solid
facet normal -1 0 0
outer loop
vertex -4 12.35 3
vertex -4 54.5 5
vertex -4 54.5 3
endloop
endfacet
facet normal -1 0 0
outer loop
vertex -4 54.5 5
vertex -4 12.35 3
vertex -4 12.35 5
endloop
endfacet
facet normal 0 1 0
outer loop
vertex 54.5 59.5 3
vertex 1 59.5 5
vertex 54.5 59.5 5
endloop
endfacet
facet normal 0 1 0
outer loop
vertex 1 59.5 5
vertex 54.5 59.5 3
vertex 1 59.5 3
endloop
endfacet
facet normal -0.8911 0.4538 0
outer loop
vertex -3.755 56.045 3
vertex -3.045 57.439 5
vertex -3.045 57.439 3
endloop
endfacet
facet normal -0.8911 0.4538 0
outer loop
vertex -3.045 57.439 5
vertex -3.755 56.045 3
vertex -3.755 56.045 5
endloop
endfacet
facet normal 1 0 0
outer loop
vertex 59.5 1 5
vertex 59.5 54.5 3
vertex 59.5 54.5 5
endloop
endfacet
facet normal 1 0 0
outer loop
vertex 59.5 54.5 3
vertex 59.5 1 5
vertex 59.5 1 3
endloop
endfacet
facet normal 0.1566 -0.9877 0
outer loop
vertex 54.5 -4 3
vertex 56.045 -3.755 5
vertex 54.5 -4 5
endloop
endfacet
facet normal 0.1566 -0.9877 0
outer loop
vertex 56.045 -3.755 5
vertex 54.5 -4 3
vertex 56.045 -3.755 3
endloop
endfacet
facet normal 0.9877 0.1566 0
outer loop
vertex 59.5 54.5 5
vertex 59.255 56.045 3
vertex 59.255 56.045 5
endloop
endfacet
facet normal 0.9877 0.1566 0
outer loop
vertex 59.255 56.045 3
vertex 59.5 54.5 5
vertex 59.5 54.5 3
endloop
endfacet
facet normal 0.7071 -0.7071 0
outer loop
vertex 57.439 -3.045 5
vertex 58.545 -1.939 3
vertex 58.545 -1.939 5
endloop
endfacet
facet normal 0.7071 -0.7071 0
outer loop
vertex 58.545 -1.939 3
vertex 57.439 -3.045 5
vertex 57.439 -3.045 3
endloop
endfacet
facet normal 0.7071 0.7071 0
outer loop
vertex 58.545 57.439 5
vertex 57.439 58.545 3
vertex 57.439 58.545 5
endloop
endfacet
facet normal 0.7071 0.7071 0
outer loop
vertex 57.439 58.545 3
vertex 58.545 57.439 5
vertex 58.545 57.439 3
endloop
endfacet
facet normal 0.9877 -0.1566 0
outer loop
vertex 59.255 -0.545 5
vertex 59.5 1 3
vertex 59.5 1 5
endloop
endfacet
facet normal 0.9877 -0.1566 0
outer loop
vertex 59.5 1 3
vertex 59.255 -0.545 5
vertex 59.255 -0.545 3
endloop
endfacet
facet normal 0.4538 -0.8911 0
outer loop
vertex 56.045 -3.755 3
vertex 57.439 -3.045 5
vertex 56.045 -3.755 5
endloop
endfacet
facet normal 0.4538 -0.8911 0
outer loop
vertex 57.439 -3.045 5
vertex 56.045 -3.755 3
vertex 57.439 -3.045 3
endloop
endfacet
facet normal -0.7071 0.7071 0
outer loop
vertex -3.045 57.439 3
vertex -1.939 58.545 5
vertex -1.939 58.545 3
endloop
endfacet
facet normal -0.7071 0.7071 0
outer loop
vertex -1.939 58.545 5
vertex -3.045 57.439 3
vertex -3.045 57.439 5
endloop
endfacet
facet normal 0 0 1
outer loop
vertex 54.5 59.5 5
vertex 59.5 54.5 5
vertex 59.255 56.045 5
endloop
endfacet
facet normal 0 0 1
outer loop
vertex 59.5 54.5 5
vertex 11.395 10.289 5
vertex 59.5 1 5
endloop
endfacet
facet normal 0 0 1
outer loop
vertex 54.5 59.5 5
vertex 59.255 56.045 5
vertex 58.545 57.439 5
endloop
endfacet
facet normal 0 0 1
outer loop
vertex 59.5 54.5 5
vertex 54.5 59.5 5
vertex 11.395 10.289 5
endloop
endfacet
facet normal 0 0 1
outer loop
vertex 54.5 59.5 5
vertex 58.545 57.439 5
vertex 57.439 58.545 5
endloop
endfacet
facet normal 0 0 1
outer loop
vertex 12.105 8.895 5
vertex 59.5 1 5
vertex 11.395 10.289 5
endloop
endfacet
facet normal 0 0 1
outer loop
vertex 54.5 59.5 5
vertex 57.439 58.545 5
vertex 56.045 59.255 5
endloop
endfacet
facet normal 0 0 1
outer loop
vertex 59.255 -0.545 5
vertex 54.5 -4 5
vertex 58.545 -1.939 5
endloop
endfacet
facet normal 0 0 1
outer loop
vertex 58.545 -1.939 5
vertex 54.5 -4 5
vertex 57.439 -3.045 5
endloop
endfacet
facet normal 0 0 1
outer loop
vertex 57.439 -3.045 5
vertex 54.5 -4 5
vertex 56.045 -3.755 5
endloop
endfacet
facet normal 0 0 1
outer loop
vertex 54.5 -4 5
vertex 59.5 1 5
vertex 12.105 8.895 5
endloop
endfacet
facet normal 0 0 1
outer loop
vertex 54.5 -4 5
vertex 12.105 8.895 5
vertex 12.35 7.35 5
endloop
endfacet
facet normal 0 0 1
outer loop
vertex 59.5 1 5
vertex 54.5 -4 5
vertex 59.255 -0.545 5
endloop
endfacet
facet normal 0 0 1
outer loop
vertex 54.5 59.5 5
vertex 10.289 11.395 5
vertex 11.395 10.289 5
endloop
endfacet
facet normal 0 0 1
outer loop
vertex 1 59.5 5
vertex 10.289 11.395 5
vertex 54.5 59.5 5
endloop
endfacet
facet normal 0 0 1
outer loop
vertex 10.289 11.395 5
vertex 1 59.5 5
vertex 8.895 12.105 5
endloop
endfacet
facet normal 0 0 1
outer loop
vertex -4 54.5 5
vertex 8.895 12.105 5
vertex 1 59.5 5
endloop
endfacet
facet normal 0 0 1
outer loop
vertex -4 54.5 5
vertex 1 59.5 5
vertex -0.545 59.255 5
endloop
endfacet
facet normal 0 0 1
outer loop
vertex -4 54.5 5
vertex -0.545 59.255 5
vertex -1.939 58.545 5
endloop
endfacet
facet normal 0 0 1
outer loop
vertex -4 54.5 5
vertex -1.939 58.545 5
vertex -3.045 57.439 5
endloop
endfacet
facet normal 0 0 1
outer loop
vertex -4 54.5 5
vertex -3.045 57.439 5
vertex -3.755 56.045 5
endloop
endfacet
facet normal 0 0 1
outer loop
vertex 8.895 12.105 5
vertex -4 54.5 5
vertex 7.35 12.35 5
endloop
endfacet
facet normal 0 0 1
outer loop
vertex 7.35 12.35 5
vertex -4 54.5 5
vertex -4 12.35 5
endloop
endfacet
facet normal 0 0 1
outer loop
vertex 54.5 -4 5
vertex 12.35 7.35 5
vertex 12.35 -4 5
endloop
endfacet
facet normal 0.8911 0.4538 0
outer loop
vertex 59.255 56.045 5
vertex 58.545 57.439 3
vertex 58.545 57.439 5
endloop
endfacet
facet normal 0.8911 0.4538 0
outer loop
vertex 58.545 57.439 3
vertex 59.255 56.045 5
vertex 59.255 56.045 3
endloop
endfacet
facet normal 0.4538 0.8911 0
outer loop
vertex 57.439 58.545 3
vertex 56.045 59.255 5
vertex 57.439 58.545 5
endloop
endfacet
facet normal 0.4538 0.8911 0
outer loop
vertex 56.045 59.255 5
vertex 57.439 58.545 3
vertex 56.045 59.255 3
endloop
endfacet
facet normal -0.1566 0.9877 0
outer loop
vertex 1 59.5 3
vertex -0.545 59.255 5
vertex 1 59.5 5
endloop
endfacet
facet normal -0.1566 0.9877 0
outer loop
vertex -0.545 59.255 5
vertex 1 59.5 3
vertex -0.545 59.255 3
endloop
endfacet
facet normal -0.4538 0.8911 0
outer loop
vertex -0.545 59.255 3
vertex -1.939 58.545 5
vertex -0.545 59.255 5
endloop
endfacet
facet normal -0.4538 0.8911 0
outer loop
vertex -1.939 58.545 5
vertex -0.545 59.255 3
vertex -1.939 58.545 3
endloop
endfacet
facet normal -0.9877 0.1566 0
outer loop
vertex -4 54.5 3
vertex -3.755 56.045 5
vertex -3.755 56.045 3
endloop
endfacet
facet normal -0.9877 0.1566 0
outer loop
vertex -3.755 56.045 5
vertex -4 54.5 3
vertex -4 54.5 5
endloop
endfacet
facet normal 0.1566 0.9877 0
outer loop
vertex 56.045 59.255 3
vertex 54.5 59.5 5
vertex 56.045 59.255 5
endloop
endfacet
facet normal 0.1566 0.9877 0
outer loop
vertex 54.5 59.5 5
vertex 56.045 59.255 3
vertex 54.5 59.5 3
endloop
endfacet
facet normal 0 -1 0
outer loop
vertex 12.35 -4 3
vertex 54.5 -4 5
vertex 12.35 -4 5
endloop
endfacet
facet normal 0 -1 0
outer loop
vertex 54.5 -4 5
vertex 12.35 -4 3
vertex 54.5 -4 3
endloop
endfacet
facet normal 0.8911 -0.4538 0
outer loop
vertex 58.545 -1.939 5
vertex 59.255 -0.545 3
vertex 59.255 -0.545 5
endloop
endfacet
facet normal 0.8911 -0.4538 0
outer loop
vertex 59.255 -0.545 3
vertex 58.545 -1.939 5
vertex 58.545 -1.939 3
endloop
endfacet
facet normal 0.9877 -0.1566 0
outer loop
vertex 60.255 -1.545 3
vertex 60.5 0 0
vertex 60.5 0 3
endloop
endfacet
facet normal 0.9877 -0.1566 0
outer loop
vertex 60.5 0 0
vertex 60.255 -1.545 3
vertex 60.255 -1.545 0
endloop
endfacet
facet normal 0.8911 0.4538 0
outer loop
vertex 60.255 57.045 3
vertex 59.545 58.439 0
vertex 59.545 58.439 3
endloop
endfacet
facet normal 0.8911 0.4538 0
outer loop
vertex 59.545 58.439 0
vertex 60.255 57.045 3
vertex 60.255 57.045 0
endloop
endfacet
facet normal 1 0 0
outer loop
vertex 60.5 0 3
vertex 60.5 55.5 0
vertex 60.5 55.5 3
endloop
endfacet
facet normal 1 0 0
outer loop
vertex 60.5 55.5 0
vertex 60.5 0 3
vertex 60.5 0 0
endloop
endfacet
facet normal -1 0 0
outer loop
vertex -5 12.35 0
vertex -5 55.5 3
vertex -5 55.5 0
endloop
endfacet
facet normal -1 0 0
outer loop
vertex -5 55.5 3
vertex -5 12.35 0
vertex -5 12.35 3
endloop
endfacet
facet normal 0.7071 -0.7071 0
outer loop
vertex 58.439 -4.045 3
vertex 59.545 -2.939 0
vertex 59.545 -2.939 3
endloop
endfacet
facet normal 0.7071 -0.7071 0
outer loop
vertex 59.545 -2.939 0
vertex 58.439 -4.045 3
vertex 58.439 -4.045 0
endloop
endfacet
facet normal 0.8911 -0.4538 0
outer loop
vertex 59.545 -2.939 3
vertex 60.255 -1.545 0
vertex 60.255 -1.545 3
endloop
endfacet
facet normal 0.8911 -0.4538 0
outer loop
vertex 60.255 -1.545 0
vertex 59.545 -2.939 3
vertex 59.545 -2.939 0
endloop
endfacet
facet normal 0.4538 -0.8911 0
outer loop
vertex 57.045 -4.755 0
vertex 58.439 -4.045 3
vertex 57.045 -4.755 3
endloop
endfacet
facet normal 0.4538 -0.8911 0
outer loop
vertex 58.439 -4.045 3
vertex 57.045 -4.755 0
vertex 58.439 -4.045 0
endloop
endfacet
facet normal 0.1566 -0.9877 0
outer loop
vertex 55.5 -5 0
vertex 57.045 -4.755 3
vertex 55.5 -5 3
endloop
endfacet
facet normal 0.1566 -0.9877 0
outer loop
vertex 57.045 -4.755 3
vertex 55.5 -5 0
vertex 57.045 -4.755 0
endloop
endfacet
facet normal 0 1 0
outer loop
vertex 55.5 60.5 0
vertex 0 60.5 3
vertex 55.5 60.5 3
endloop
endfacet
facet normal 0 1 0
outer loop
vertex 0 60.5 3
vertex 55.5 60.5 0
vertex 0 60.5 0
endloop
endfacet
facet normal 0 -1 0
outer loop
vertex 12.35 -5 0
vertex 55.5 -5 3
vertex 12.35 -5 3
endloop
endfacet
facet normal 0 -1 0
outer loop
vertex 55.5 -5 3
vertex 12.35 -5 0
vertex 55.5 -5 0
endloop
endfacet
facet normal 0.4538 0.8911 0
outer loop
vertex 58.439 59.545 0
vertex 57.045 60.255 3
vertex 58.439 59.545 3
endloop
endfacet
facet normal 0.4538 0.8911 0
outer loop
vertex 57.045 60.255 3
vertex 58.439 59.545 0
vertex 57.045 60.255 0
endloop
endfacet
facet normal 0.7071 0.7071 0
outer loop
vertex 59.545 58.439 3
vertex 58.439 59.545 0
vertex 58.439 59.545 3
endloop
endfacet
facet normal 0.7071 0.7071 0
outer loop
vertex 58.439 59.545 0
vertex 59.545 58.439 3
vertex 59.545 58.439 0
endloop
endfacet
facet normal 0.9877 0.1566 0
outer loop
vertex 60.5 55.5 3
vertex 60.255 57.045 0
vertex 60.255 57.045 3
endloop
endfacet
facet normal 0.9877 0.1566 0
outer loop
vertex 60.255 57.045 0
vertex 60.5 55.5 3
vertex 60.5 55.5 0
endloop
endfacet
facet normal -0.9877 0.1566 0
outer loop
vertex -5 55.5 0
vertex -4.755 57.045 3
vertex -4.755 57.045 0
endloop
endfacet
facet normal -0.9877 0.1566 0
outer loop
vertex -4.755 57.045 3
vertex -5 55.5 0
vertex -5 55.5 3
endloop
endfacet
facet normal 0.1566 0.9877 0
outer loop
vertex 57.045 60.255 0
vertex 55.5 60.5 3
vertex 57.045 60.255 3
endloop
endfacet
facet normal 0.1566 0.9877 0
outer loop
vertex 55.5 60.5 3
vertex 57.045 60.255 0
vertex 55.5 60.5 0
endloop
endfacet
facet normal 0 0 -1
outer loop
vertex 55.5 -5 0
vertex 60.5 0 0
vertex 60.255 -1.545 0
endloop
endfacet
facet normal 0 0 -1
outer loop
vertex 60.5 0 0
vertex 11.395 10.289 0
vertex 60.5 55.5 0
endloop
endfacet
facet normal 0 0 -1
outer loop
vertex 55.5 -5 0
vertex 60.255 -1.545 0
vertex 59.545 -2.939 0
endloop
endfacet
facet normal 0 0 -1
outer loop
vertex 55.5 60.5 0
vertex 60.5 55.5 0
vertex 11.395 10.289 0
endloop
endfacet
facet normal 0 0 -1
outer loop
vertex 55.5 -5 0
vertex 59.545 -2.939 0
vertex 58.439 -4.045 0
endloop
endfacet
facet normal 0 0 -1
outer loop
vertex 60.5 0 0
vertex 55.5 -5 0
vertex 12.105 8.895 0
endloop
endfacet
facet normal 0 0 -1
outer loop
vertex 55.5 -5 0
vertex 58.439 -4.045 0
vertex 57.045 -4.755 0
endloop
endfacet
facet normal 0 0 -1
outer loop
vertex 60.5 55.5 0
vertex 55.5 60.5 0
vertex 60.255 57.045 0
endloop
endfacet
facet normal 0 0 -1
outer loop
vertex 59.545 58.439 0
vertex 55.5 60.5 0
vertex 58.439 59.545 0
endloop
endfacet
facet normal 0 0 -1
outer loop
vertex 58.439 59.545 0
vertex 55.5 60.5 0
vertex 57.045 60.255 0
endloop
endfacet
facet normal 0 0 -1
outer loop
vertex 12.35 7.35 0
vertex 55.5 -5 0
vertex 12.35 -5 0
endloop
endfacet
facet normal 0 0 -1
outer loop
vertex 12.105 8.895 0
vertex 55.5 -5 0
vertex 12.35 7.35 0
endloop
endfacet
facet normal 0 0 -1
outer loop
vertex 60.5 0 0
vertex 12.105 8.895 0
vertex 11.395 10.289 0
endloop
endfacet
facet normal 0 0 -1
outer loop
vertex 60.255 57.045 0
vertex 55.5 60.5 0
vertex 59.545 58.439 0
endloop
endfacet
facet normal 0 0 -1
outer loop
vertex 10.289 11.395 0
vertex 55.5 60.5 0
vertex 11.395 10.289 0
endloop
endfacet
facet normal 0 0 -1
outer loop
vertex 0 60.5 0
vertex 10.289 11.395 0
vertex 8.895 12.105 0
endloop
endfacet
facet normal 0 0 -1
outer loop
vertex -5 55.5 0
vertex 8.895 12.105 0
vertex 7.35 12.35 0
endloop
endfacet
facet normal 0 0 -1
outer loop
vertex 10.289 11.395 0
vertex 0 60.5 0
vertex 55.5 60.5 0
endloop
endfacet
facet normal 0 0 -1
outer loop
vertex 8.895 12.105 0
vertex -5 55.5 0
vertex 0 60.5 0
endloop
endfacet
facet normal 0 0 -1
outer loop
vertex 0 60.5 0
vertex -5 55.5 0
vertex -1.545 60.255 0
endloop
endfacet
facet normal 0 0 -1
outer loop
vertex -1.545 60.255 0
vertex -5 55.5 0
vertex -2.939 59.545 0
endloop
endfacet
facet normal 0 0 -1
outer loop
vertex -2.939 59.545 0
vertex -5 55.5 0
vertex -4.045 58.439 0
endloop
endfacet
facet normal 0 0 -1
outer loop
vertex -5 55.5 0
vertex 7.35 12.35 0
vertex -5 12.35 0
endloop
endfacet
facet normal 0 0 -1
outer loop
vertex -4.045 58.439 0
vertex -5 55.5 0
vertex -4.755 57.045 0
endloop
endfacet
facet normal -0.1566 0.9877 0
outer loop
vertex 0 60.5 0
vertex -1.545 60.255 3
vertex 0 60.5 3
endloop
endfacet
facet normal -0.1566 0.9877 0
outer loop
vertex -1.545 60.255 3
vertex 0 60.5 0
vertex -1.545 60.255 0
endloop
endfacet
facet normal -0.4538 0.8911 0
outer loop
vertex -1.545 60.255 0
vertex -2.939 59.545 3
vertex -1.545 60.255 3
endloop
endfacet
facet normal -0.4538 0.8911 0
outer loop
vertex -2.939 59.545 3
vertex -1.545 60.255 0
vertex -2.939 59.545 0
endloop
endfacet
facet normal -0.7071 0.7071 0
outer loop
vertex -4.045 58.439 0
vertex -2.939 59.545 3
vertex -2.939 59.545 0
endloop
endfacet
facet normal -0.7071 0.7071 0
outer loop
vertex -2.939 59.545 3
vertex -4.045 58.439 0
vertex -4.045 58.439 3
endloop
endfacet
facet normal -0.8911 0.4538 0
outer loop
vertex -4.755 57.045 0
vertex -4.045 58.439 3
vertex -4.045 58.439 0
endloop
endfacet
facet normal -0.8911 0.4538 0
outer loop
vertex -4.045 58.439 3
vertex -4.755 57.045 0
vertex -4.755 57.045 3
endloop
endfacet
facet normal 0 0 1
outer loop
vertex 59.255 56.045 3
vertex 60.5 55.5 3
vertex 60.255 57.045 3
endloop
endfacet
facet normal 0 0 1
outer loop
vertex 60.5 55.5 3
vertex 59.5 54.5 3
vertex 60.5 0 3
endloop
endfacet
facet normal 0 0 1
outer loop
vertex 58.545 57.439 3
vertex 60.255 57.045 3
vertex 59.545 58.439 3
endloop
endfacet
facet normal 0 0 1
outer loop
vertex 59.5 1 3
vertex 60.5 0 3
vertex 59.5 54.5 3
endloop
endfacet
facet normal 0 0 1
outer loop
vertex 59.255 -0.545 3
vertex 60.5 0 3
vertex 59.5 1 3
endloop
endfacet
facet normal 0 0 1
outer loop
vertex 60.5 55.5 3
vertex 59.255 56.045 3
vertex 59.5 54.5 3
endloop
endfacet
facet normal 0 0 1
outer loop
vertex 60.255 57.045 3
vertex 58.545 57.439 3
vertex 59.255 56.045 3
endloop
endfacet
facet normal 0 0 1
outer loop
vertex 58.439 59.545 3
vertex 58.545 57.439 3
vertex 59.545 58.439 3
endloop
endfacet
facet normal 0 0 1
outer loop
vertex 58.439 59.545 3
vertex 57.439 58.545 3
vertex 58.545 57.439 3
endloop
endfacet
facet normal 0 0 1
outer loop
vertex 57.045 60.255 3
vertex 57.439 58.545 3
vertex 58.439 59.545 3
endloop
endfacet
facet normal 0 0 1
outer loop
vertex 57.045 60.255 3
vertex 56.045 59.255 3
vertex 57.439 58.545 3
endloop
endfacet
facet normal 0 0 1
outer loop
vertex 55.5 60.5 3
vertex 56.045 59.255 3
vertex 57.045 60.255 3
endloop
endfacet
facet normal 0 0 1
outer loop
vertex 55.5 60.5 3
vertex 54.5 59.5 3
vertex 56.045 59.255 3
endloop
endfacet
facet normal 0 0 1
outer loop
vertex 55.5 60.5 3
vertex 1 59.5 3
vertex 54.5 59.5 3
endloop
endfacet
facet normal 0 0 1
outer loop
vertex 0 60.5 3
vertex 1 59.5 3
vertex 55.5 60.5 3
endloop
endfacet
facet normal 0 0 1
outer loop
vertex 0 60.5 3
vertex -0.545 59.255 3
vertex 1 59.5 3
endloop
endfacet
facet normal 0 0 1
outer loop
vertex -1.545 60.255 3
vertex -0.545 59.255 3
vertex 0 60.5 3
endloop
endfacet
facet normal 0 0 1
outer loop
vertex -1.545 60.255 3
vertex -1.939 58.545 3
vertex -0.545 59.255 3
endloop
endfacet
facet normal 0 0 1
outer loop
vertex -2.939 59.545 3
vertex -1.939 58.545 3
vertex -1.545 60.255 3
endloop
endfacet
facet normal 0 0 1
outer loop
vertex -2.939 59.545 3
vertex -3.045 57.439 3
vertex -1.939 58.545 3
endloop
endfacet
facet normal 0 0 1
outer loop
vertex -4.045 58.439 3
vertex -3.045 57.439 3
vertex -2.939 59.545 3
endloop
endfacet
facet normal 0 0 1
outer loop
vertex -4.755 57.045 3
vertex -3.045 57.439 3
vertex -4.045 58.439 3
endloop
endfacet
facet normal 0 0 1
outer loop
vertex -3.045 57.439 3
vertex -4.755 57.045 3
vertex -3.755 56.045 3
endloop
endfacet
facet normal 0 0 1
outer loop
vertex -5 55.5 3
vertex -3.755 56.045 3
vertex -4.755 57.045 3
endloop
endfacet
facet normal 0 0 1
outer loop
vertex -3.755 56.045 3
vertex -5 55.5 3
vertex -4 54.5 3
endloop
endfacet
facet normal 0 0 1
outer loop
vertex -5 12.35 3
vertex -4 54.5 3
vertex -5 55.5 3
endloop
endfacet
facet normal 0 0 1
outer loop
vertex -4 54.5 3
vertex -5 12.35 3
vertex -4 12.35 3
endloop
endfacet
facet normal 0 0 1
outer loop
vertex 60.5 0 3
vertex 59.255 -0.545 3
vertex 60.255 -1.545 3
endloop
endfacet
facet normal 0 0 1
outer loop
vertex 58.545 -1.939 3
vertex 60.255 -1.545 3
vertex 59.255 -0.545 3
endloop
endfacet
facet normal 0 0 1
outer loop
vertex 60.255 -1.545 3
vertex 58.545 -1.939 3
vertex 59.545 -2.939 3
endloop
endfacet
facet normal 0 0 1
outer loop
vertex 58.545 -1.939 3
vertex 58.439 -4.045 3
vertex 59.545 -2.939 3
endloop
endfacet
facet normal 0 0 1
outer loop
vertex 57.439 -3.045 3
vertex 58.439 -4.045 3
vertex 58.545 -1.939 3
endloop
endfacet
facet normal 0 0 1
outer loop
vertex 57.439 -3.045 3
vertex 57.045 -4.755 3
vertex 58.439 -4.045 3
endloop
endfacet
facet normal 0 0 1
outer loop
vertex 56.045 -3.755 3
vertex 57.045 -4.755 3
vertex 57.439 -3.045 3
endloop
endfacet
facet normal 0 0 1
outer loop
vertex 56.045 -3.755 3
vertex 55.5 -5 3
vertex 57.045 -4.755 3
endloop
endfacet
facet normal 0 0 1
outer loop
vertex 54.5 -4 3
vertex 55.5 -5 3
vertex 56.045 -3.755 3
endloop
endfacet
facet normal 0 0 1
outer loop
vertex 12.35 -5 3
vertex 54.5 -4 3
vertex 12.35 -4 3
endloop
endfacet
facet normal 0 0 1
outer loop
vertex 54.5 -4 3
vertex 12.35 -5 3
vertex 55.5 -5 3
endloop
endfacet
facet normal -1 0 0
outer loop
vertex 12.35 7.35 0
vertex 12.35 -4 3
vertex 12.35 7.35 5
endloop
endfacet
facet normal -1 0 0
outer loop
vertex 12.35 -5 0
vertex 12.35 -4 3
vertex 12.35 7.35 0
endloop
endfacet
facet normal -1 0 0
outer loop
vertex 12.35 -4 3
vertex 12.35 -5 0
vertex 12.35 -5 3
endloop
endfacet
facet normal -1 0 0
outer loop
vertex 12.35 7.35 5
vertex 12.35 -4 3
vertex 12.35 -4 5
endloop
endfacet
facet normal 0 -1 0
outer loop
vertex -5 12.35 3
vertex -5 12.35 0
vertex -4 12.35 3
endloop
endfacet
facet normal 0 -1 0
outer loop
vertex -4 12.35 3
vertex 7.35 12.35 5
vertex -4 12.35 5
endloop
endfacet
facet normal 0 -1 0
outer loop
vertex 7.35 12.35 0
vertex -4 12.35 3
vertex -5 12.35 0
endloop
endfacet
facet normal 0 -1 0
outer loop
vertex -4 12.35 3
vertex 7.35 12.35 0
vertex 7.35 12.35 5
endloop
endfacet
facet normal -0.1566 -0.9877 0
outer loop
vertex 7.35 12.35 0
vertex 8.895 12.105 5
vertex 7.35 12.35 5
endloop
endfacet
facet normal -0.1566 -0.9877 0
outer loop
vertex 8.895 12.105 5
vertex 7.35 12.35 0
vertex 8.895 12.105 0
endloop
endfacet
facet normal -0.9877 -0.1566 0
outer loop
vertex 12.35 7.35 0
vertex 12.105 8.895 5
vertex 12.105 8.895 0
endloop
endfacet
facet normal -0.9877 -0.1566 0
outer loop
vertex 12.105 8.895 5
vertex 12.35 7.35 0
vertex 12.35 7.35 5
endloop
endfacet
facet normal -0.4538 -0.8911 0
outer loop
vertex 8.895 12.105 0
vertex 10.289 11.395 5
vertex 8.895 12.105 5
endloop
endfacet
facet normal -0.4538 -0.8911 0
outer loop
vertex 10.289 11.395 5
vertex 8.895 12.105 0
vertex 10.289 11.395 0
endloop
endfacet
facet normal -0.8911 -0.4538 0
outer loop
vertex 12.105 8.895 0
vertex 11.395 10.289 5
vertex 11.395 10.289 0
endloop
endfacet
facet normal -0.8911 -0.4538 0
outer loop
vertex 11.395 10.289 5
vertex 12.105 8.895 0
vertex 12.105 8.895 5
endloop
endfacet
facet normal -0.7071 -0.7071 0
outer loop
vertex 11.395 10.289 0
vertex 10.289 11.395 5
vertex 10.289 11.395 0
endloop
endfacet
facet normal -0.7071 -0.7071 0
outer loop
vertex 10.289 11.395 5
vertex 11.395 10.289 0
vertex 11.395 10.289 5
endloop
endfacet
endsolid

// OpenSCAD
// file: ../../rounded-corner-end-cap.scad
 
use <../../../basics/rounded-edges/rounded-cube/rounded-cube.scad>

module roundedCornerEndcap(innerLength = 50,
                            innerWidth = 80,
                            innerSize = [10, 10, 2],
                            innerCornerRadius = 5,

                            outerLength = 150,
                            outerWidth = 100,
                            outerSize = [15, 15, 2],
                            outerCornerRadius = 5)
{
    union()
    {
        xTranslate = (outerSize[0] / 2.0) - innerSize[0] / 2.0;
        yTranslate = (outerSize[1] / 2.0) - innerSize[1] / 2.0;
        zTranslate = outerSize[2];
        color("green")
        translate([xTranslate, yTranslate, zTranslate ])
        roundedCube(cornerRadius = innerCornerRadius,
                    sides=20,
                    sidesOnly=true,
                    size=innerSize);

        roundedCube(cornerRadius = outerCornerRadius,
                    sides=20,
                    sidesOnly=true,
                    size=outerSize);
    }
}
// file: ../../../../../basics/rounded-edges/rounded-cube/rounded-cube.scad
/**
 *
 *  some parts of this software were inspired by
 *
 * 	     http://www.thingiverse.com/thing:9347
 *
 */

/**
 * makes a rounded cube
 */
module roundedCube(cornerRadius=4,
				   cubeCentered=false,
				   sides=30,
				   sidesOnly=false,
				   size=[20,20,2])
{
    $fn=sides;

    x = size[0] - cornerRadius/2;
    y = size[1] - cornerRadius/2;
    z = size[2];

    minkowski(size, cornerRadius)
    {
        cube(size=[x,y,z], center=cubeCentered);

        if(sidesOnly)
        {
            cylinder(r=cornerRadius);
        }
        else
        {
            sphere(r=cornerRadius);
        }
    };
}
// main file
use <../../../../../basics/rounded-edges/rounded-cube/rounded-cube.scad>

use <../../rounded-corner-end-cap.scad>

zLength = 2;
cornerRadius = 5;

innerWidth = cornerRadius + 51;
innerSize = [innerWidth, innerWidth, zLength];

outerWidth = innerWidth + 2;
outerSize = [outerWidth, outerWidth, zLength];

difference()
{
    roundedCornerEndcap(innerLength = innerWidth,
                        innerWidth = innerWidth,
                        innerSize = innerSize,
                        innerCornerRadius = cornerRadius,

                        outerLength = outerWidth,
                        outerWidth = outerWidth,
                        outerSize = outerSize,
                        outerCornerRadius = cornerRadius);

    xyTranslate = cornerRadius;
    cutoutSideLength = (cornerRadius + 17 // needs to be 22
                        + xyTranslate) 
                        
                        * 0.55;
//                        * 01.0;

    cutoutSize = [cutoutSideLength, cutoutSideLength, zLength+5];
    translate([-xyTranslate, -xyTranslate, -0.01])
    roundedCube(cornerRadius = cornerRadius,
                    sides=20,
                    sidesOnly=true,
                    size=cutoutSize);
}
